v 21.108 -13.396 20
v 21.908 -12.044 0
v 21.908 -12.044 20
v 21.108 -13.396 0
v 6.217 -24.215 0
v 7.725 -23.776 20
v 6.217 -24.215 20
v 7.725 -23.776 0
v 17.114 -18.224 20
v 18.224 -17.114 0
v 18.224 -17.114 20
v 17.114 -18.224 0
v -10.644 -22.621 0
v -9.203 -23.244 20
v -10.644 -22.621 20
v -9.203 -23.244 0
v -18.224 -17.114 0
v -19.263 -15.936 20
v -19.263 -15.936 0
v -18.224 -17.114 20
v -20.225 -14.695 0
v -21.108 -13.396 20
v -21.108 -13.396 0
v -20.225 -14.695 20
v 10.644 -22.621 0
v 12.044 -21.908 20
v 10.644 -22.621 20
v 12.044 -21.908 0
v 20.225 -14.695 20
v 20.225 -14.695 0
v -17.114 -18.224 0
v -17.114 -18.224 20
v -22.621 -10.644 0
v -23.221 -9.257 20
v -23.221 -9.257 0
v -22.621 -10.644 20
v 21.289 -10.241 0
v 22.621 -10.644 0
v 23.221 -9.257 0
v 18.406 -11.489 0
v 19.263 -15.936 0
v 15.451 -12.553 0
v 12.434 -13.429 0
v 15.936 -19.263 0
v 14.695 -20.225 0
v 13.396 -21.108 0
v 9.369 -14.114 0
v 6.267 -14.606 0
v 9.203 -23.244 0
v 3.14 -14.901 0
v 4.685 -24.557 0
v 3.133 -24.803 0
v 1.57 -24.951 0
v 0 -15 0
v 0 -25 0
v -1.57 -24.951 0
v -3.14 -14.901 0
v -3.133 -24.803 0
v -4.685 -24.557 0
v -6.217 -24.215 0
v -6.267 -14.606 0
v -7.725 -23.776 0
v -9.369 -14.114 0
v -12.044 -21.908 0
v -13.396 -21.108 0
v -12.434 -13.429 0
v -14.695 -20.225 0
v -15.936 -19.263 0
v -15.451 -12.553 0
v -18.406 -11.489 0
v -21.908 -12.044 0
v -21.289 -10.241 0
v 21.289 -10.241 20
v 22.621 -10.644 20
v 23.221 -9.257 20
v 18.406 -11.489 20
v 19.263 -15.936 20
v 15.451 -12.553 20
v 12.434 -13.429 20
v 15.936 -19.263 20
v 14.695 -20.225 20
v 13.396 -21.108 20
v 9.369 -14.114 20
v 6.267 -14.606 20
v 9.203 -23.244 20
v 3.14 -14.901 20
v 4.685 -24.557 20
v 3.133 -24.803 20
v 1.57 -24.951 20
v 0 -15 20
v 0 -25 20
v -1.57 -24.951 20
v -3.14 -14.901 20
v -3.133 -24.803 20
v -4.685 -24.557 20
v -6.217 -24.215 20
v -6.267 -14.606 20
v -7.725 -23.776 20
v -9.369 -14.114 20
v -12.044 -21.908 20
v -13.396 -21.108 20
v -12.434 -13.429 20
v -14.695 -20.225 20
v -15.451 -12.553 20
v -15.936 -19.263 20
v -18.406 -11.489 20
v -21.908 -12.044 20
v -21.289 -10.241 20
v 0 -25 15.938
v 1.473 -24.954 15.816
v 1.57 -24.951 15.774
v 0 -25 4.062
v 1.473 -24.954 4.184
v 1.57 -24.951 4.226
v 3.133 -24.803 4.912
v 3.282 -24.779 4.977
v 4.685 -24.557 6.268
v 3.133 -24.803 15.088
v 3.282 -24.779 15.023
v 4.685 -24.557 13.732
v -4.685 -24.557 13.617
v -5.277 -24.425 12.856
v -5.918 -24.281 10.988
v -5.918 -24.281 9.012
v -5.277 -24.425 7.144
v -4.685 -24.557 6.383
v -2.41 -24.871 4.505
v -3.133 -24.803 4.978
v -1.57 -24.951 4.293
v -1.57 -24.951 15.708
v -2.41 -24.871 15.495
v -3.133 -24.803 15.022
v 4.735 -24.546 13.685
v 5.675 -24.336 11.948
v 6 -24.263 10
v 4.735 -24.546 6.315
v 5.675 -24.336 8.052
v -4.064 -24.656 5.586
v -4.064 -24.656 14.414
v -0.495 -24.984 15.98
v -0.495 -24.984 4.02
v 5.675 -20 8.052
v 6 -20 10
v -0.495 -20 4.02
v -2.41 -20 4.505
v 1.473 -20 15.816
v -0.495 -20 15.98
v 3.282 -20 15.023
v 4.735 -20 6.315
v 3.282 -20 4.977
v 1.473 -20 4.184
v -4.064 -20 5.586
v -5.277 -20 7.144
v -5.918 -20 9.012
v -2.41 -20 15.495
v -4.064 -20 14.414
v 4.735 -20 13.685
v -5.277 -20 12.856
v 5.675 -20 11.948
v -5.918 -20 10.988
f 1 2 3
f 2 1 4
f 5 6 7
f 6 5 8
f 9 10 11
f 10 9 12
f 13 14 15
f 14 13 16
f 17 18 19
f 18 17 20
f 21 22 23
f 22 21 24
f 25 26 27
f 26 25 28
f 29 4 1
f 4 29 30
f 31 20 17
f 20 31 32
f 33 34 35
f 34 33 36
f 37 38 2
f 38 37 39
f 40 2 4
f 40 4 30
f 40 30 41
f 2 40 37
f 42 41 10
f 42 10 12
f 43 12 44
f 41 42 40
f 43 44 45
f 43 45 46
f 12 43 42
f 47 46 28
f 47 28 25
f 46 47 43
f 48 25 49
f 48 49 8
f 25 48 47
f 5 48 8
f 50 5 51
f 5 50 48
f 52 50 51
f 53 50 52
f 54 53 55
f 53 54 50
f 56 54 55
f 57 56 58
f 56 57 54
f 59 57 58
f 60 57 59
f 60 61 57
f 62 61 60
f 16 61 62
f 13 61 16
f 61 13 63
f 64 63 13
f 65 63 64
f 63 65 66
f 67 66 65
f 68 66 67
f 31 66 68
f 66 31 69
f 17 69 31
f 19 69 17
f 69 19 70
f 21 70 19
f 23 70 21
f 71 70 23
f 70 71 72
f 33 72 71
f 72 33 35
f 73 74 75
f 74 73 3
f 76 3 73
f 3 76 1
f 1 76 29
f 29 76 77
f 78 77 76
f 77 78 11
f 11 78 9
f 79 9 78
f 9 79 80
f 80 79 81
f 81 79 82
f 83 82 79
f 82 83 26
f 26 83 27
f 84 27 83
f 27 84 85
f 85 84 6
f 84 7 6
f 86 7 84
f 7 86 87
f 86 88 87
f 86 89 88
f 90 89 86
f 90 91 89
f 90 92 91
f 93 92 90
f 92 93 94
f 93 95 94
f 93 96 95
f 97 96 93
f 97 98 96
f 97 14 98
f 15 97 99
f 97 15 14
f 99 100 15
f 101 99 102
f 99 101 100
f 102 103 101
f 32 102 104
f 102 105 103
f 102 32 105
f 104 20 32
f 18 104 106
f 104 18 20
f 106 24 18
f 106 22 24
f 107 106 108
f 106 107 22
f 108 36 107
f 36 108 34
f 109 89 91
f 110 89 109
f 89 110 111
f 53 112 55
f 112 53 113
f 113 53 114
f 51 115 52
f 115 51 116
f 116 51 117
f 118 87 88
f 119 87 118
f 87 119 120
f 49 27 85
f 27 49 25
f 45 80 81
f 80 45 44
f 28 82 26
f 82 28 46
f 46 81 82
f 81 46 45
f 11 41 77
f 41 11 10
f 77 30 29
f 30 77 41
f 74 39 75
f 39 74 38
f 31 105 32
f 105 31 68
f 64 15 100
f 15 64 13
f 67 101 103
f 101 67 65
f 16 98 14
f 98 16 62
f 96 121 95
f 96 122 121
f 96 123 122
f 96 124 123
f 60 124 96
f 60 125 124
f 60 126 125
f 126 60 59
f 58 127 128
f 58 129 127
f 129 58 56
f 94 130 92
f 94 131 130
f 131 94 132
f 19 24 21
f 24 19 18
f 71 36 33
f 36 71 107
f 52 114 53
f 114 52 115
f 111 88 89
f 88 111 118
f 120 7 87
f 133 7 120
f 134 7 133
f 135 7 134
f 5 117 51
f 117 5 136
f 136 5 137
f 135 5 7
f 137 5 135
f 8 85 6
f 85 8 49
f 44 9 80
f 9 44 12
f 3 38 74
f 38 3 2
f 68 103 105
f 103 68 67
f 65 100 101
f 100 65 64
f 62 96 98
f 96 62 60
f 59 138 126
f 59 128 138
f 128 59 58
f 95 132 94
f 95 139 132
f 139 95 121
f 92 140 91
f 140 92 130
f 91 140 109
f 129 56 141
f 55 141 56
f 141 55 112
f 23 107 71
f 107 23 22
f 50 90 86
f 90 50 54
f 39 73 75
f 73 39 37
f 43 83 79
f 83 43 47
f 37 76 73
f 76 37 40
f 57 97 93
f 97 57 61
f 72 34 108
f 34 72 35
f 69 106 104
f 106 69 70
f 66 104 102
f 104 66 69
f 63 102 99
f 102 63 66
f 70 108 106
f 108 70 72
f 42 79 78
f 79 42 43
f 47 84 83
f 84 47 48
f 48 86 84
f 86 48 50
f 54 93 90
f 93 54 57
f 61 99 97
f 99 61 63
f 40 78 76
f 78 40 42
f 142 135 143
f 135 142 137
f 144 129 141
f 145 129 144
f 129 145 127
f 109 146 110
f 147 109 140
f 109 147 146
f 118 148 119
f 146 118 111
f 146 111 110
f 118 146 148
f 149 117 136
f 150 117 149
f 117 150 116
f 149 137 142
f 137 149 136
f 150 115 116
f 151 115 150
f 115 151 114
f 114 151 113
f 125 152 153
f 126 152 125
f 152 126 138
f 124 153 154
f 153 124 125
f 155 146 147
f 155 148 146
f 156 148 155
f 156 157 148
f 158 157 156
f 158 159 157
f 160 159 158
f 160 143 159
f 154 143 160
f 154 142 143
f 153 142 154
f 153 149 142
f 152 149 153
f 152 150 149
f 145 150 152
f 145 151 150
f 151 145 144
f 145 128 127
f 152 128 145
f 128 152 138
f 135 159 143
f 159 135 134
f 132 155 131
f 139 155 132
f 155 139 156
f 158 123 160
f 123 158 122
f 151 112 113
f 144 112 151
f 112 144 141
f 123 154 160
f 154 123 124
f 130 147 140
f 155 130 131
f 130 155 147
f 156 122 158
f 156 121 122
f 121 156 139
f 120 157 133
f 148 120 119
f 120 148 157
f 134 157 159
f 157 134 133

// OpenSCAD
// file: nutsnbolts/data-access.scad
// Norm Nuts and Bolts - a OpenSCAD library
// Copyright (C) 2012  Johannes Kneer

// This program is free software: you can redistribute it and/or modify
// it under the terms of the GNU General Public License as published by
// the Free Software Foundation, either version 3 of the License, or
// (at your option) any later version.

// This program is distributed in the hope that it will be useful,
// but WITHOUT ANY WARRANTY; without even the implied warranty of
// MERCHANTABILITY or FITNESS FOR A PARTICULAR PURPOSE.  See the
// GNU General Public License for more details.

// You should have received a copy of the GNU General Public License
// along with this program.  If not, see <http://www.gnu.org/licenses/>.


// DATABASE ACCESS FUNCTIONS AND CONSTANTS



// == CONSTANTS ==

// screw table access keys
_NB_S_DESC            = 0;
_NB_S_FAMKEY			    = 1;
_NB_S_LENGTH          = 2;
_NB_S_NOTHREAD_LENGTH = 3;

_NB_F_DESC			      = 0;
_NB_F_OUTER_DIA       = 1;
_NB_F_INNER_DIA       = 2;
_NB_F_LEAD            = 3;
_NB_F_KEY             = 4;
_NB_F_KEY_DEPTH       = 5;
_NB_F_HEAD_HEIGHT     = 6;
_NB_F_HEAD_DIA        = 7;
_NB_F_NUT_KEY         = 8;
_NB_F_NUT_HEIGHT      = 9;
_NB_F_PITCH_FINE      = 10;
_NB_F_PITCH_MEDIUM    = 11;
_NB_F_PITCH_COARSE    = 12;


// == FUNCTIONS ==

// _get_screw("descriptor")   with descriptor = M8x25
//   find the line for a general object in the data matrix

function _get_screw(n) = data_screw[search([n], data_screw)[0]];
function _get_screw_fam(n) = data_screw_fam[search([_get_screw(n)[_NB_S_FAMKEY]], data_screw_fam)[0]];

function _get_fam(n) = data_screw_fam[search([n], data_screw_fam)[0]];


// _get_XXXXX("descriptor") functions
// find a single property in the database

function _get_desc(n)        = _get_screw(n)[_NB_S_DESC];
function _get_famkey(n)         = _get_screw(n)[_NB_S_FAMKEY];
function _get_length(n)      = _get_screw(n)[_NB_S_LENGTH];
function _get_nt_length(n)   = _get_screw(n)[_NB_S_NOTHREAD_LENGTH];

function _get_outer_dia(n)   = _get_screw_fam(n)[_NB_F_OUTER_DIA];
function _get_inner_dia(n)   = _get_screw_fam(n)[_NB_F_INNER_DIA];
function _get_lead(n)        = _get_screw_fam(n)[_NB_F_LEAD];
function _get_head_height(n) = _get_screw_fam(n)[_NB_F_HEAD_HEIGHT];
function _get_head_dia(n)    = _get_screw_fam(n)[_NB_F_HEAD_DIA];
function _get_nut_key(n)     = _get_screw_fam(n)[_NB_F_NUT_KEY];
function _get_nut_height(n)  = _get_screw_fam(n)[_NB_F_NUT_HEIGHT];
function _get_fine_pitch(n)  = _get_screw_fam(n)[_NB_F_PITCH_FINE];
function _get_medium_pitch(n)  = _get_screw_fam(n)[_NB_F_PITCH_MEDIUM];
function _get_coarse_pitch(n)  = _get_screw_fam(n)[_NB_F_PITCH_COARSE];
// file: polyScrewThread_r1.scad
/*
 *    polyScrewThread_r1.scad    by aubenc @ Thingiverse
 *
 * This script contains the library modules that can be used to generate
 * threaded rods, screws and nuts.
 *
 * http://www.thingiverse.com/thing:8796
 *
 * CC Public Domain
 */

module screw_thread(od,st,lf0,lt,rs,cs)
{
    or=od/2;
    ir=or-st/2*cos(lf0)/sin(lf0);
    pf=2*PI*or;
//    sn=floor(pf/rs);
    sn = 90;
    lfxy=360/sn;
    ttn=round(lt/st+1);
    zt=st/sn;

    intersection()
    {
        if (cs >= -1)
        {
           thread_shape(cs,lt,or,ir,sn,st);
        }

        full_thread(ttn,st,sn,zt,lfxy,or,ir);
    }
}

module hex_nut(df,hg,sth,clf,cod,crs)
{

    difference()
    {
        hex_head(hg,df);

        hex_countersink_ends(sth/2,cod,clf,crs,hg);

        screw_thread(cod,sth,clf,hg,crs,-2);
    }
}


module hex_screw(od,st,lf0,lt,rs,cs,df,hg,ntl,ntd)
{
    ntr=od/2-(st/2)*cos(lf0)/sin(lf0);

    union()
    {
        hex_head(hg,df);

        translate([0,0,hg])
        if ( ntl == 0 )
        {
            cylinder(h=0.01, r=ntr, center=true);
        }
        else
        {
            if ( ntd == -1 )
            {
                cylinder(h=ntl+0.01, r=ntr, $fn=floor(od*PI/rs), center=false);
            }
            else if ( ntd == 0 )
            {
                union()
                {
                    cylinder(h=ntl-st/2,
                             r=od/2, $fn=floor(od*PI/rs), center=false);

                    translate([0,0,ntl-st/2])
                    cylinder(h=st/2,
                             r1=od/2, r2=ntr, 
                             $fn=floor(od*PI/rs), center=false);
                }
            }
            else
            {
                cylinder(h=ntl, r=ntd/2, $fn=ntd*PI/rs, center=false);
            }
        }

        translate([0,0,ntl+hg]) screw_thread(od,st,lf0,lt,rs,cs);
    }
}

module hex_screw_0(od,st,lf0,lt,rs,cs,df,hg,ntl,ntd)
{
    ntr=od/2-(st/2)*cos(lf0)/sin(lf0);

    union()
    {
        hex_head_0(hg,df);

        translate([0,0,hg])
        if ( ntl == 0 )
        {
            cylinder(h=0.01, r=ntr, center=true);
        }
        else
        {
            if ( ntd == -1 )
            {
                cylinder(h=ntl+0.01, r=ntr, $fn=floor(od*PI/rs), center=false);
            }
            else if ( ntd == 0 )
            {
                union()
                {
                    cylinder(h=ntl-st/2,
                             r=od/2, $fn=floor(od*PI/rs), center=false);

                    translate([0,0,ntl-st/2])
                    cylinder(h=st/2,
                             r1=od/2, r2=ntr, 
                             $fn=floor(od*PI/rs), center=false);
                }
            }
            else
            {
                cylinder(h=ntl, r=ntd/2, $fn=ntd*PI/rs, center=false);
            }
        }

        translate([0,0,ntl+hg]) screw_thread(od,st,lf0,lt,rs,cs);
    }
}

module thread_shape(cs,lt,or,ir,sn,st)
{
    if ( cs == 0 )
    {
        cylinder(h=lt, r=or, $fn=sn, center=false);
    }
    else
    {
        union()
        {
            translate([0,0,st/2])
              cylinder(h=lt-st+0.005, r=or, $fn=sn, center=false);

            if ( cs == -1 || cs == 2 )
            {
                cylinder(h=st/2, r1=ir, r2=or, $fn=sn, center=false);
            }
            else
            {
                cylinder(h=st/2, r=or, $fn=sn, center=false);
            }

            translate([0,0,lt-st/2])
            if ( cs == 1 || cs == 2 )
            {
                  cylinder(h=st/2, r1=or, r2=ir, $fn=sn, center=false);
            }
            else
            {
                cylinder(h=st/2, r=or, $fn=sn, center=false);
            }
        }
    }
}

module full_thread(ttn,st,sn,zt,lfxy,or,ir)
{
  if(ir >= 0.2)
  {
    for(i=[0:ttn-1])
    {
        for(j=[0:sn-1])
			assign( pt = [	[0,                  0,                  i*st-st            ],
                        [ir*cos(j*lfxy),     ir*sin(j*lfxy),     i*st+j*zt-st       ],
                        [ir*cos((j+1)*lfxy), ir*sin((j+1)*lfxy), i*st+(j+1)*zt-st   ],
								[0,0,i*st],
                        [or*cos(j*lfxy),     or*sin(j*lfxy),     i*st+j*zt-st/2     ],
                        [or*cos((j+1)*lfxy), or*sin((j+1)*lfxy), i*st+(j+1)*zt-st/2 ],
                        [ir*cos(j*lfxy),     ir*sin(j*lfxy),     i*st+j*zt          ],
                        [ir*cos((j+1)*lfxy), ir*sin((j+1)*lfxy), i*st+(j+1)*zt      ],
                        [0,                  0,                  i*st+st            ]	])
        {
            polyhedron(points=pt,
              		  triangles=[	[1,0,3],[1,3,6],[6,3,8],[1,6,4],
											[0,1,2],[1,4,2],[2,4,5],[5,4,6],[5,6,7],[7,6,8],
											[7,8,3],[0,2,3],[3,2,7],[7,2,5]	]);
        }
    }
  }
  else
  {
    echo("Step Degrees too agresive, the thread will not be made!!");
    echo("Try to increase de value for the degrees and/or...");
    echo(" decrease the pitch value and/or...");
    echo(" increase the outer diameter value.");
  }
}

module hex_head(hg,df)
{
	rd0=df/2/sin(60);
	x0=0;	x1=df/2;	x2=x1+hg/2;
	y0=0;	y1=hg/2;	y2=hg;

	intersection()
	{
	   cylinder(h=hg, r=rd0, $fn=6, center=false);

		rotate_extrude(convexity=10, $fn=6*round(df*PI/6/0.5))
		polygon([ [x0,y0],[x1,y0],[x2,y1],[x1,y2],[x0,y2] ]);
	}
}

module hex_head_0(hg,df)
{
    cylinder(h=hg, r=df/2/sin(60), $fn=6, center=false);
}

module hex_countersink_ends(chg,cod,clf,crs,hg)
{
    translate([0,0,-0.1])
    cylinder(h=chg+0.01, 
             r1=cod/2, 
             r2=cod/2-(chg+0.1)*cos(clf)/sin(clf),
             $fn=floor(cod*PI/crs), center=false);

    translate([0,0,hg-chg+0.1])
    cylinder(h=chg+0.01, 
             r1=cod/2-(chg+0.1)*cos(clf)/sin(clf),
             r2=cod/2, 
             $fn=floor(cod*PI/crs), center=false);
}
// file: clamp.scad
include <settings.scad>
include <utils.scad>

include <nutsnbolts/cyl_head_bolt.scad>

module clamp_screw() {
    rotate([0, 90, 0]) {
  translate([-ClampThickness/2, ClampLength - ClampZone/2, -5]) {
            translate([0, 0, 22]) {
               hole_through(name="M3", l=20, cl=0.1, h=10, hcl=0.4); 
            }
            translate([0, 0, -2]) {
                nutcatch_parallel("M3", l=5);
            }
            }
        }
}



module arm() {
     difference() {
         translate([-ClampThickness/2, C, 0]) {
            difference(){
                cube([ClampThickness, ClampLength, ClampThickness]);
                translate([0, ClampLength-ClampZone, 0])cube([ClampThickness/3, ClampLength, ClampThickness]);
                translate([ClampThickness - ClampThickness/3, ClampLength-ClampZone, 0]) cube([ClampThickness/3, ClampLength, ClampThickness]);
             
            }          
        }
       clamp_screw();
    }
}


module clamp() {
   //     translate([0,-40, ClampThickness/2]) rotate([-90, 0, 0]) big_screw();
    
   /* difference(){
        cylinder(ClampThickness, ClampDiameter/2+ClampThickness/2, ClampDiameter/2+ClampThickness/2, $fn=fn);
        cylinder(ClampThickness, ClampDiameter/2, ClampDiameter/2, $fn=fn);
        translate([0, -ClampDiameter/2, 0]) cube([ClampDiameter, ClampDiameter/1.2, ClampThickness]);
        translate([0,-100, ClampThickness/2]) rotate([-90, 0, 0]) big_screw();
     } ;
     
     */
     
     // this is the main arm
     translate([-180/2, -ClampThickness/2, 0]) {
         cube([180, ClampThickness, ClampThickness]);
     }
     arm();
	 
};

//attachment();
clamp();
// file: utils.scad
include <settings.scad>
include <polyScrewThread_r1.scad>

module screw(diameter) {
       hex_screw(diameter,4,55,100,1.5,2,24,8,0,0);
 
}

module big_screw() {
       screw(10);
}

module medium_screw() {
       screw(8);
}
// file: settings.scad
//// Parametrics settings

RingNumberOfTeeth=100;
DriverNumberOfTeeth=6;

ClampThickness=20;
ClampDiameter=50; // C172 is 19mm 
ClampLength=30;
ClampZone=20;

GrooveWidth=5;

fn=100;


RingThickness = 20; 
RingDiameter=140;

Tolerance=0.1;
// main file
include <settings.scad>
include <utils.scad>

include <nutsnbolts/cyl_head_bolt.scad>
use <clamp.scad>
    
 difference(){
       cylinder(ClampThickness, ClampDiameter/2, ClampDiameter/2, $fn=fn);
       translate([0, ClampDiameter-15, 0]) {
            cylinder(ClampThickness, ClampDiameter, ClampDiameter, $fn=fn);
       }
       translate([0,-70, ClampThickness/2]) rotate([-90, 0, 0]) {
           
          // big_screw();
             cylinder(50, 6, 6);
       }
 }
    
 
